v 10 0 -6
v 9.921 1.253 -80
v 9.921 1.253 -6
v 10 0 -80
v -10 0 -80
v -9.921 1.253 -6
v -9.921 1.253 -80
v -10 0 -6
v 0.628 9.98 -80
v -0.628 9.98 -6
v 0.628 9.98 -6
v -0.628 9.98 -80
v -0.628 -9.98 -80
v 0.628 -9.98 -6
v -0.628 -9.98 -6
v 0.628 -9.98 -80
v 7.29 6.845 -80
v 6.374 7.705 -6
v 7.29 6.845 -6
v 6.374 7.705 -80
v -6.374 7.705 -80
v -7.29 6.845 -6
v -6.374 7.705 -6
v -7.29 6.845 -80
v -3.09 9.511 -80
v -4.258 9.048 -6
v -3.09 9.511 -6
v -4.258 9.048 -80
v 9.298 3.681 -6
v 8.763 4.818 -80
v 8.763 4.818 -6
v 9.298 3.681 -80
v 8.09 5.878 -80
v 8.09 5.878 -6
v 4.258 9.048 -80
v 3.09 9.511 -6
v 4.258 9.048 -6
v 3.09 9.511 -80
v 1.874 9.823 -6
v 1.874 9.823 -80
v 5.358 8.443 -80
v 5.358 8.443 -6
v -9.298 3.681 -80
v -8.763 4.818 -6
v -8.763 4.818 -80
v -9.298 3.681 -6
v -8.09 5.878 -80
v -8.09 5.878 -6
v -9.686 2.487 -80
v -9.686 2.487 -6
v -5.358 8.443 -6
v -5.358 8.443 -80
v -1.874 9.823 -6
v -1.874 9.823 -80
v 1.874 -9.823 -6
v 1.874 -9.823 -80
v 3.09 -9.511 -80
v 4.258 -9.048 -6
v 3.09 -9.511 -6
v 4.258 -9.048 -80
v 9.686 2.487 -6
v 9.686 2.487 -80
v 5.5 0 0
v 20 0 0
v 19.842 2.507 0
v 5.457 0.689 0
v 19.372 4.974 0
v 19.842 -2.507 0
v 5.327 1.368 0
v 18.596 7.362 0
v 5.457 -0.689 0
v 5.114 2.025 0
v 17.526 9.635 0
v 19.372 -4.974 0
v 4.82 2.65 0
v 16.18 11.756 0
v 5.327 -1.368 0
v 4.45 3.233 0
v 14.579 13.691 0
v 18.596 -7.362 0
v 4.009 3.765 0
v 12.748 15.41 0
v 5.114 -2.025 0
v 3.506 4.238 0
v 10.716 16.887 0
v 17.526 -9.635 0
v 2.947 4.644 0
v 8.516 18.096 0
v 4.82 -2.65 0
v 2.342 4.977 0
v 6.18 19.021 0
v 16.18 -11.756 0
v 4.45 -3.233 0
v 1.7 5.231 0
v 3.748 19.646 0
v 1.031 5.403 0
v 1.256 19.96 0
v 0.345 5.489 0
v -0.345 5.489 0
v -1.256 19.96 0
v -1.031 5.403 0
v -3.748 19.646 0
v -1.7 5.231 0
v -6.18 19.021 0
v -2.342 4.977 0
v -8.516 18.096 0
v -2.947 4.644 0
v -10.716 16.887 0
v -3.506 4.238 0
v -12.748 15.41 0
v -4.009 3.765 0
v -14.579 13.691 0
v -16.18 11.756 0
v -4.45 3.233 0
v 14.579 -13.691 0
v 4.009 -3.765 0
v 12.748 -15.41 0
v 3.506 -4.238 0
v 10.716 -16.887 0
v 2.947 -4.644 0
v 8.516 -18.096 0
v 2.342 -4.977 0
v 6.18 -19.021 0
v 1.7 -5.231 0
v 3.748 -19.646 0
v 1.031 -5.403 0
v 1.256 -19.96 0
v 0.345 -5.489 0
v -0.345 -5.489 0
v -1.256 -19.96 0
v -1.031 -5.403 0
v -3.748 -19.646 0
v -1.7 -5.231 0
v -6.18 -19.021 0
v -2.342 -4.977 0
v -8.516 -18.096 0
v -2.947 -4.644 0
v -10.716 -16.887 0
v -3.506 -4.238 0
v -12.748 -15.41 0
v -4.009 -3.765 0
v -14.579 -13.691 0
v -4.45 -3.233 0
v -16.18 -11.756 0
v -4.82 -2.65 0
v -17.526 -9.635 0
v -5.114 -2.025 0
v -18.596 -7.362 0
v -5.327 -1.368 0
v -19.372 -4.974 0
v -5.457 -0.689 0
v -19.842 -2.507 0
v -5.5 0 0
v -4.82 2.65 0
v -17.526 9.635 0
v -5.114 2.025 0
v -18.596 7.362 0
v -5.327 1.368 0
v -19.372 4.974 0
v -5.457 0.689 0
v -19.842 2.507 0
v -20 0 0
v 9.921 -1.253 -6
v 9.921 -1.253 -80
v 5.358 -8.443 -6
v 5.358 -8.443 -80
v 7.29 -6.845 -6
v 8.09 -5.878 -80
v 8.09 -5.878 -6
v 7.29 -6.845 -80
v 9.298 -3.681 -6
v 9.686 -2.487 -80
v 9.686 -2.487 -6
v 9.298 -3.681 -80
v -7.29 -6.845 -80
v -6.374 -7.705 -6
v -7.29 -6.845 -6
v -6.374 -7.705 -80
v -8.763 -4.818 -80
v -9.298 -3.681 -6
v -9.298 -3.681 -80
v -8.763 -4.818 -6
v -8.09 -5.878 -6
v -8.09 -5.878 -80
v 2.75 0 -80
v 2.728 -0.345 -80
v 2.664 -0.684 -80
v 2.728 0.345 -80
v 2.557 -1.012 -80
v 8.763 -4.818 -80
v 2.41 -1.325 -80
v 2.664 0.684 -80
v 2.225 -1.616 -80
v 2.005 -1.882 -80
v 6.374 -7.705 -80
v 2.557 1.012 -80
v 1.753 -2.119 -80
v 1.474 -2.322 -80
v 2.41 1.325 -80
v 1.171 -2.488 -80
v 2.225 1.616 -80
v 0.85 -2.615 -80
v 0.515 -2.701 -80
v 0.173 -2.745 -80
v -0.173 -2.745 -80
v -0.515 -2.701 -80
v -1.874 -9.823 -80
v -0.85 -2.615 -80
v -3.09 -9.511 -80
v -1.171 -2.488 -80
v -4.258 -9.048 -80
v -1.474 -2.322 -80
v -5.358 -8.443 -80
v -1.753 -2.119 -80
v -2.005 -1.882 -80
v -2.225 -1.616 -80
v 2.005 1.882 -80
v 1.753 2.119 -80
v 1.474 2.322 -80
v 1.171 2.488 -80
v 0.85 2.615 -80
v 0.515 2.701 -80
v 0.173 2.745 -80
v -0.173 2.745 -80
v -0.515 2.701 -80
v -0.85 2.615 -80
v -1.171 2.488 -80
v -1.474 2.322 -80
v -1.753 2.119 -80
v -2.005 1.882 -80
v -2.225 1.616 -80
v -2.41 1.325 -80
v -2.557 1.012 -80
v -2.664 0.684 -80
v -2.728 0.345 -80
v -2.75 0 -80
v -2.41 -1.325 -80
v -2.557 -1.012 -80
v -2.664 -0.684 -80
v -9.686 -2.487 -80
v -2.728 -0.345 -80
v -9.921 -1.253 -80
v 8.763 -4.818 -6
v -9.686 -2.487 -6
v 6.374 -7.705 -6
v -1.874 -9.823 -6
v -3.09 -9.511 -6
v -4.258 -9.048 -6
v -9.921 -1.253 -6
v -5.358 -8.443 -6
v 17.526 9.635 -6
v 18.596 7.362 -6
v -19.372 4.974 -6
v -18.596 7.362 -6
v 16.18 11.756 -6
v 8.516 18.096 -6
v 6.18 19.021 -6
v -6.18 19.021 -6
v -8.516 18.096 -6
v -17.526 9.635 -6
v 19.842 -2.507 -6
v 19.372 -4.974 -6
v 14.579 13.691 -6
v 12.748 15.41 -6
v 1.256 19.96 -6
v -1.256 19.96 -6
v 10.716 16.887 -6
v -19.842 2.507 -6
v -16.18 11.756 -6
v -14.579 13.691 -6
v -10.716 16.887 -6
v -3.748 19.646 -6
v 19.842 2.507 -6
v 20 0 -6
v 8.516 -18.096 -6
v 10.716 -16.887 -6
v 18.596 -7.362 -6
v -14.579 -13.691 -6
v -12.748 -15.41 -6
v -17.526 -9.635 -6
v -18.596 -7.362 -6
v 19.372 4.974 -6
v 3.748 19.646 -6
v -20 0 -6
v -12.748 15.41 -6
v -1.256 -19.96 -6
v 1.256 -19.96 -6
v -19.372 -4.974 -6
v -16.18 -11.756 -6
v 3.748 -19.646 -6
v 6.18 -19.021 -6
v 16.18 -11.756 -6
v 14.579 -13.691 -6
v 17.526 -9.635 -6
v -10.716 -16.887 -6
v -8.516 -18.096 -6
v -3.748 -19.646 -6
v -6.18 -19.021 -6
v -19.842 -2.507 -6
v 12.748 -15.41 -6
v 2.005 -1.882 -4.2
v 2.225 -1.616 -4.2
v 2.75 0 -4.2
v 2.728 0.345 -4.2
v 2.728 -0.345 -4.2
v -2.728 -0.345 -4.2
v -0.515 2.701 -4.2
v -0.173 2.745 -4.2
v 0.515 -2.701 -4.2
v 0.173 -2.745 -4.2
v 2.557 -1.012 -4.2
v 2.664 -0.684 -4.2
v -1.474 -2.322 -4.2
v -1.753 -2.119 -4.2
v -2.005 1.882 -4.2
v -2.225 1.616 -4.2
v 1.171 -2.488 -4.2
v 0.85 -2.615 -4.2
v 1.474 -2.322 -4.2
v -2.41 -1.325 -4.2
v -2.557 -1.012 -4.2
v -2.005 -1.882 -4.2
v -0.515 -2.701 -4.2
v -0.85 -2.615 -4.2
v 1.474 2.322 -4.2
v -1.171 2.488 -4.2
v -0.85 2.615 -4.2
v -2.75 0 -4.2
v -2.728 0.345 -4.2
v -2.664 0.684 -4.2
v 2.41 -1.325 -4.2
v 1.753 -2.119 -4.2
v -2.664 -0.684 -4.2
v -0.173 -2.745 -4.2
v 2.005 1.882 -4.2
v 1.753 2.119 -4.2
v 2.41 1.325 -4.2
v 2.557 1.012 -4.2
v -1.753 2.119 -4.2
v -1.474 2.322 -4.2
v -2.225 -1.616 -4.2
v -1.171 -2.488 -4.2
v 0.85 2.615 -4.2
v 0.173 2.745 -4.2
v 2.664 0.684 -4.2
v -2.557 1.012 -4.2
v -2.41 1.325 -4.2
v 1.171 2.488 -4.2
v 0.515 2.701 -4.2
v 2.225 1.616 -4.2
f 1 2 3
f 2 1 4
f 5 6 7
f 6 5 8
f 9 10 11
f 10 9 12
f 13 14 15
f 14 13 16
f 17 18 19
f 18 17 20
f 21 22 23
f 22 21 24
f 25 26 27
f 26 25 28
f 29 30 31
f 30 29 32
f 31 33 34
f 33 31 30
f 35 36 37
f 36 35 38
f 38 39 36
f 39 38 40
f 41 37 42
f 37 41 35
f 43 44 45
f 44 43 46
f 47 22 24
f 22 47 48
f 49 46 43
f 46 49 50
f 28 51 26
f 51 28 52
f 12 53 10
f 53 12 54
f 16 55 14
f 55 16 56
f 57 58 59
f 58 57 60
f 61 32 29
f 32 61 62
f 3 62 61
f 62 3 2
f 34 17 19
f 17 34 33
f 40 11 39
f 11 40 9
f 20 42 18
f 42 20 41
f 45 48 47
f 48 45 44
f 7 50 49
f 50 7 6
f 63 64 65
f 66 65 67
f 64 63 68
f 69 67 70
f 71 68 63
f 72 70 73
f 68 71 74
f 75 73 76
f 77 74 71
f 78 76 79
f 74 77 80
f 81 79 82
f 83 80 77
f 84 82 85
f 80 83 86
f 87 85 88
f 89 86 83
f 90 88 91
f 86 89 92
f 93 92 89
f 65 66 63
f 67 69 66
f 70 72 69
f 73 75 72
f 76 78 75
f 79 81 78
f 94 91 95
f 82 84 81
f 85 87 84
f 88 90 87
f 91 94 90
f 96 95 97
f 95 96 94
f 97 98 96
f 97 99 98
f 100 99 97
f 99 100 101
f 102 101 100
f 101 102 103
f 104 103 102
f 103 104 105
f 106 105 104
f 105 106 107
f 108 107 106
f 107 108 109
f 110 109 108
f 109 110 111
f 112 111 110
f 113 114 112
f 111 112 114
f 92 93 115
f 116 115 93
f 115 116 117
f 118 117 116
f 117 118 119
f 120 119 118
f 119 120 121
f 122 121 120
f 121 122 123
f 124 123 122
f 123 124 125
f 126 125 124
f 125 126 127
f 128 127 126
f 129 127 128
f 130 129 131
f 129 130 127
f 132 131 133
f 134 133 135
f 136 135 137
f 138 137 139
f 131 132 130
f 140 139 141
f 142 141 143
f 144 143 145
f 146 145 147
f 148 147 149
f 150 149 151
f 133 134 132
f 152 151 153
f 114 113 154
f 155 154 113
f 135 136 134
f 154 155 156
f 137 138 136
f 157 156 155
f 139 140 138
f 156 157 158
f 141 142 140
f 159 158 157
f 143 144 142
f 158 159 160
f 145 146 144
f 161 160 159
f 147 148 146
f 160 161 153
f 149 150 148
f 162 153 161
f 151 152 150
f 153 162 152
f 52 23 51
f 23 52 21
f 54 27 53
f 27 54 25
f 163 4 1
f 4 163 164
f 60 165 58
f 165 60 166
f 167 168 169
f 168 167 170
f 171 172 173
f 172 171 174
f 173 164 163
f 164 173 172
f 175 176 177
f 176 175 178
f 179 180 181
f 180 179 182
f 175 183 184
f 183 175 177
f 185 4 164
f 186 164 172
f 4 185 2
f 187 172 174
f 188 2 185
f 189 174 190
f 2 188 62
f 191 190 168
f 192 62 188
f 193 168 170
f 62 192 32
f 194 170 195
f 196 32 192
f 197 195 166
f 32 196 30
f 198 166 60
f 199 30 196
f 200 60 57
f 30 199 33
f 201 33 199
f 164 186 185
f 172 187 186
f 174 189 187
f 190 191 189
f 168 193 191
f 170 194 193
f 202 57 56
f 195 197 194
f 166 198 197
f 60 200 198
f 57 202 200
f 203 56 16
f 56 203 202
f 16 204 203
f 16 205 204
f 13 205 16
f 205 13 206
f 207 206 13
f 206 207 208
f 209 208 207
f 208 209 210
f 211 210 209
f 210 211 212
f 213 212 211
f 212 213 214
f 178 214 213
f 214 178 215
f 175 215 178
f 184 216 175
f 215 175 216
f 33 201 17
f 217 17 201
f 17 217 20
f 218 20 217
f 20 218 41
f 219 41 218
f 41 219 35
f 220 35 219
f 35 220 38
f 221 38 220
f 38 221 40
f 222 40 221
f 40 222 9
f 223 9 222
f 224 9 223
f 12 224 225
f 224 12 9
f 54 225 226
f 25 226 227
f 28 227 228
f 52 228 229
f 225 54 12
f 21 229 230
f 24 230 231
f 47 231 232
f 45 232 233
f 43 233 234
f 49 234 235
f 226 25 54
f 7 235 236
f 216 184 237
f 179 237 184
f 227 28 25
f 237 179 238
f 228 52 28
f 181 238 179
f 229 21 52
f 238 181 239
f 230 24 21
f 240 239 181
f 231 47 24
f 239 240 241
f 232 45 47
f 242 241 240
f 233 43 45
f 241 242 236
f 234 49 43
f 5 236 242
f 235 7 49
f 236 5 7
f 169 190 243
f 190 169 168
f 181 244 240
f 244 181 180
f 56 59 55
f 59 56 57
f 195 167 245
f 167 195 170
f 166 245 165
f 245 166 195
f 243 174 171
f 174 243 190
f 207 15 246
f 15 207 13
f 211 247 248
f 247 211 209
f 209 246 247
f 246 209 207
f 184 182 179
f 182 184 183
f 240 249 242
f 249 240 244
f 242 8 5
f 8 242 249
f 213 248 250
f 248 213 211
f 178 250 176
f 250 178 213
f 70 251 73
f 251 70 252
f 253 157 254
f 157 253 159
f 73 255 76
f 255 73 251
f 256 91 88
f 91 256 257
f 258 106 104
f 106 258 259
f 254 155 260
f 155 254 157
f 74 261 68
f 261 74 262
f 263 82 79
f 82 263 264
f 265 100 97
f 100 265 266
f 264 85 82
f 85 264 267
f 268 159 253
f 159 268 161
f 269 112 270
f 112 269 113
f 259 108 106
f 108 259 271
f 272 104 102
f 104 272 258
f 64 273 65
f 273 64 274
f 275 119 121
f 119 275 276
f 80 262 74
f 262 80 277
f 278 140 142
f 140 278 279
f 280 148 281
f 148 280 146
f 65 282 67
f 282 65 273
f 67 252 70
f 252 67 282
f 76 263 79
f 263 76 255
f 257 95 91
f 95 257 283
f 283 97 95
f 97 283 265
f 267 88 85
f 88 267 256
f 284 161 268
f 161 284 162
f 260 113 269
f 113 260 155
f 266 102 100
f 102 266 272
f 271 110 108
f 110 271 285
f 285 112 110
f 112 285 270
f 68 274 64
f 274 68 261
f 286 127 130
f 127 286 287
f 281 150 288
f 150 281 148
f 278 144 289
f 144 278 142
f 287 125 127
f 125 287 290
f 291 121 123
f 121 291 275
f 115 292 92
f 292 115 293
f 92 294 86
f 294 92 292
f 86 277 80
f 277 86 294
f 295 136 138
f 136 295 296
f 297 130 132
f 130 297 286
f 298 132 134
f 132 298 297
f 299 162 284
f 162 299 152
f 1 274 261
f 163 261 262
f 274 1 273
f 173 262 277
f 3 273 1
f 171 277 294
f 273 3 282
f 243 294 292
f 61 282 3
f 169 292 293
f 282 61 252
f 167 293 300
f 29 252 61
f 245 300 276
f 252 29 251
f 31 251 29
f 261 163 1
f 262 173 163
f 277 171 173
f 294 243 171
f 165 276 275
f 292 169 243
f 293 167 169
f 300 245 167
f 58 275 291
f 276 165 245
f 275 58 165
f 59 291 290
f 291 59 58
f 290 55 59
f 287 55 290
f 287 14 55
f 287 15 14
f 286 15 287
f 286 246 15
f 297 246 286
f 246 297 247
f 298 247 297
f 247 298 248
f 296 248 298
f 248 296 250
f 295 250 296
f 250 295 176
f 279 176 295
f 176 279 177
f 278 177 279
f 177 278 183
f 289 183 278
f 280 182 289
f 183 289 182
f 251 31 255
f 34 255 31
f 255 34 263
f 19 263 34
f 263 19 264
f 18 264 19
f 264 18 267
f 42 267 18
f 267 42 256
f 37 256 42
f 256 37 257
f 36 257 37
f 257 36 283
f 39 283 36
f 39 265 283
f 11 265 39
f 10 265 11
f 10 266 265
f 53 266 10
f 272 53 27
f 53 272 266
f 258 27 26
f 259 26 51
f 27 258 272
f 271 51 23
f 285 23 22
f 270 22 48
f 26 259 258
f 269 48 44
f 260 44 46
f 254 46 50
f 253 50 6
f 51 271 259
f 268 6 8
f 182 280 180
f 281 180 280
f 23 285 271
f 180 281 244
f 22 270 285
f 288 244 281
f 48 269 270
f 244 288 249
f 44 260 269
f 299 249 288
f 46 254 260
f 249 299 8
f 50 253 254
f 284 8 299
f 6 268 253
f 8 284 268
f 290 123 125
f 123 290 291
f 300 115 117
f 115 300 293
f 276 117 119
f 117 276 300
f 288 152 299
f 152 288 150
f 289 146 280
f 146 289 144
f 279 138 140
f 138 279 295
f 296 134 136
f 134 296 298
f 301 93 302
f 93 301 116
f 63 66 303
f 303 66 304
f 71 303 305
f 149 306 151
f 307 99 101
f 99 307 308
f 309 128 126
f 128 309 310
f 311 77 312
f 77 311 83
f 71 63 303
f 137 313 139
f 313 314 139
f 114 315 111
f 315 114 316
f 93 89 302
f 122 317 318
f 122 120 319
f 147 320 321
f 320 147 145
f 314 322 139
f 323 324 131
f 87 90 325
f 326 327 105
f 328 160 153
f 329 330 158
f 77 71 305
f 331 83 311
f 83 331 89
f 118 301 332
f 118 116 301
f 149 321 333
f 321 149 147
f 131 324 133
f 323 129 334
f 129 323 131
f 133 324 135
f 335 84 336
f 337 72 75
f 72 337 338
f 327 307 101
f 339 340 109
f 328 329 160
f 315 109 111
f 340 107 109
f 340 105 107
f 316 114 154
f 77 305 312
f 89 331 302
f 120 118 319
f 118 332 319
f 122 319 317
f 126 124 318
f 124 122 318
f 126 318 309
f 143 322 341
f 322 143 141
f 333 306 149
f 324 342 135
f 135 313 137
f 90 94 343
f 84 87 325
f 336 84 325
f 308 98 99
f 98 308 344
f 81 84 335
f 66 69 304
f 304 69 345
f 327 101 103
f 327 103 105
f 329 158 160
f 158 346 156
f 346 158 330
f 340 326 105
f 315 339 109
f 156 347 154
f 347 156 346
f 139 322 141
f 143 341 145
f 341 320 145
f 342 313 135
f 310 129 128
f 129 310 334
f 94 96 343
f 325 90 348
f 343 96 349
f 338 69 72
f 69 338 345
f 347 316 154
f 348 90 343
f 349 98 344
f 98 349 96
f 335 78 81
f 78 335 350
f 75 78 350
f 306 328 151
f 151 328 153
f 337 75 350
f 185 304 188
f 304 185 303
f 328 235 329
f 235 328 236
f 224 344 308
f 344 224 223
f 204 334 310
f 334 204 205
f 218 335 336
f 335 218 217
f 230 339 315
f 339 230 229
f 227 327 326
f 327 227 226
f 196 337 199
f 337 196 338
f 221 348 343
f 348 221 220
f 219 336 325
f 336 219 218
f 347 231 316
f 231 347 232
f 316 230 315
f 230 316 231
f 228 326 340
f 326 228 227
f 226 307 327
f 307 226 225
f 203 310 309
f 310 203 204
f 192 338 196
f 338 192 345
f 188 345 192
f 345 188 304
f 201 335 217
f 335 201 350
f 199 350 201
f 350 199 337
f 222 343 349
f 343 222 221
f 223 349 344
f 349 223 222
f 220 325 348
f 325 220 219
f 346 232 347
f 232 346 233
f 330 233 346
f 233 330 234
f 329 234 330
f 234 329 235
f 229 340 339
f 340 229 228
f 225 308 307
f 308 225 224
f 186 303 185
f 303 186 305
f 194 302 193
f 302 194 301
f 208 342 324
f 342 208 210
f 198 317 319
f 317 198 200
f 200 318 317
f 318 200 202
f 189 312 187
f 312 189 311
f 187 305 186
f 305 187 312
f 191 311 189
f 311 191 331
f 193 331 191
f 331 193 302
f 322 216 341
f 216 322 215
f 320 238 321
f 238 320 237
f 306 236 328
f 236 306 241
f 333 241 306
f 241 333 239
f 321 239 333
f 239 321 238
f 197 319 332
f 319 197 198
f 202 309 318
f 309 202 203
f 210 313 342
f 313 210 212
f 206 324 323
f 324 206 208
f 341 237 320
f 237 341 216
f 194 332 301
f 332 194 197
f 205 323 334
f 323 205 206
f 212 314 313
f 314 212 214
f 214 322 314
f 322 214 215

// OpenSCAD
$fn = 50;


difference() {
	union() {
		translate(v = [0, 0, -80.0000000000]) {
			cylinder(h = 80, r = 10.0000000000);
		}
		translate(v = [0, 0, -6.0000000000]) {
			cylinder(h = 6, r = 20.0000000000);
		}
	}
	union() {
		translate(v = [0, 0, 0]) {
			rotate(a = [0, 0, 0]) {
				difference() {
					union() {
						#translate(v = [0, 0, -80.0000000000]) {
							cylinder(h = 80, r = 2.2500000000);
						}
						#translate(v = [0, 0, -4.2000000000]) {
							cylinder(h = 4.2000000000, r1 = 2.7500000000, r2 = 5.5000000000);
						}
						#translate(v = [0, 0, -80.0000000000]) {
							cylinder(h = 80, r = 2.7500000000);
						}
						#translate(v = [0, 0, -80.0000000000]) {
							cylinder(h = 80, r = 2.2500000000);
						}
					}
					union();
				}
			}
		}
	}
}
